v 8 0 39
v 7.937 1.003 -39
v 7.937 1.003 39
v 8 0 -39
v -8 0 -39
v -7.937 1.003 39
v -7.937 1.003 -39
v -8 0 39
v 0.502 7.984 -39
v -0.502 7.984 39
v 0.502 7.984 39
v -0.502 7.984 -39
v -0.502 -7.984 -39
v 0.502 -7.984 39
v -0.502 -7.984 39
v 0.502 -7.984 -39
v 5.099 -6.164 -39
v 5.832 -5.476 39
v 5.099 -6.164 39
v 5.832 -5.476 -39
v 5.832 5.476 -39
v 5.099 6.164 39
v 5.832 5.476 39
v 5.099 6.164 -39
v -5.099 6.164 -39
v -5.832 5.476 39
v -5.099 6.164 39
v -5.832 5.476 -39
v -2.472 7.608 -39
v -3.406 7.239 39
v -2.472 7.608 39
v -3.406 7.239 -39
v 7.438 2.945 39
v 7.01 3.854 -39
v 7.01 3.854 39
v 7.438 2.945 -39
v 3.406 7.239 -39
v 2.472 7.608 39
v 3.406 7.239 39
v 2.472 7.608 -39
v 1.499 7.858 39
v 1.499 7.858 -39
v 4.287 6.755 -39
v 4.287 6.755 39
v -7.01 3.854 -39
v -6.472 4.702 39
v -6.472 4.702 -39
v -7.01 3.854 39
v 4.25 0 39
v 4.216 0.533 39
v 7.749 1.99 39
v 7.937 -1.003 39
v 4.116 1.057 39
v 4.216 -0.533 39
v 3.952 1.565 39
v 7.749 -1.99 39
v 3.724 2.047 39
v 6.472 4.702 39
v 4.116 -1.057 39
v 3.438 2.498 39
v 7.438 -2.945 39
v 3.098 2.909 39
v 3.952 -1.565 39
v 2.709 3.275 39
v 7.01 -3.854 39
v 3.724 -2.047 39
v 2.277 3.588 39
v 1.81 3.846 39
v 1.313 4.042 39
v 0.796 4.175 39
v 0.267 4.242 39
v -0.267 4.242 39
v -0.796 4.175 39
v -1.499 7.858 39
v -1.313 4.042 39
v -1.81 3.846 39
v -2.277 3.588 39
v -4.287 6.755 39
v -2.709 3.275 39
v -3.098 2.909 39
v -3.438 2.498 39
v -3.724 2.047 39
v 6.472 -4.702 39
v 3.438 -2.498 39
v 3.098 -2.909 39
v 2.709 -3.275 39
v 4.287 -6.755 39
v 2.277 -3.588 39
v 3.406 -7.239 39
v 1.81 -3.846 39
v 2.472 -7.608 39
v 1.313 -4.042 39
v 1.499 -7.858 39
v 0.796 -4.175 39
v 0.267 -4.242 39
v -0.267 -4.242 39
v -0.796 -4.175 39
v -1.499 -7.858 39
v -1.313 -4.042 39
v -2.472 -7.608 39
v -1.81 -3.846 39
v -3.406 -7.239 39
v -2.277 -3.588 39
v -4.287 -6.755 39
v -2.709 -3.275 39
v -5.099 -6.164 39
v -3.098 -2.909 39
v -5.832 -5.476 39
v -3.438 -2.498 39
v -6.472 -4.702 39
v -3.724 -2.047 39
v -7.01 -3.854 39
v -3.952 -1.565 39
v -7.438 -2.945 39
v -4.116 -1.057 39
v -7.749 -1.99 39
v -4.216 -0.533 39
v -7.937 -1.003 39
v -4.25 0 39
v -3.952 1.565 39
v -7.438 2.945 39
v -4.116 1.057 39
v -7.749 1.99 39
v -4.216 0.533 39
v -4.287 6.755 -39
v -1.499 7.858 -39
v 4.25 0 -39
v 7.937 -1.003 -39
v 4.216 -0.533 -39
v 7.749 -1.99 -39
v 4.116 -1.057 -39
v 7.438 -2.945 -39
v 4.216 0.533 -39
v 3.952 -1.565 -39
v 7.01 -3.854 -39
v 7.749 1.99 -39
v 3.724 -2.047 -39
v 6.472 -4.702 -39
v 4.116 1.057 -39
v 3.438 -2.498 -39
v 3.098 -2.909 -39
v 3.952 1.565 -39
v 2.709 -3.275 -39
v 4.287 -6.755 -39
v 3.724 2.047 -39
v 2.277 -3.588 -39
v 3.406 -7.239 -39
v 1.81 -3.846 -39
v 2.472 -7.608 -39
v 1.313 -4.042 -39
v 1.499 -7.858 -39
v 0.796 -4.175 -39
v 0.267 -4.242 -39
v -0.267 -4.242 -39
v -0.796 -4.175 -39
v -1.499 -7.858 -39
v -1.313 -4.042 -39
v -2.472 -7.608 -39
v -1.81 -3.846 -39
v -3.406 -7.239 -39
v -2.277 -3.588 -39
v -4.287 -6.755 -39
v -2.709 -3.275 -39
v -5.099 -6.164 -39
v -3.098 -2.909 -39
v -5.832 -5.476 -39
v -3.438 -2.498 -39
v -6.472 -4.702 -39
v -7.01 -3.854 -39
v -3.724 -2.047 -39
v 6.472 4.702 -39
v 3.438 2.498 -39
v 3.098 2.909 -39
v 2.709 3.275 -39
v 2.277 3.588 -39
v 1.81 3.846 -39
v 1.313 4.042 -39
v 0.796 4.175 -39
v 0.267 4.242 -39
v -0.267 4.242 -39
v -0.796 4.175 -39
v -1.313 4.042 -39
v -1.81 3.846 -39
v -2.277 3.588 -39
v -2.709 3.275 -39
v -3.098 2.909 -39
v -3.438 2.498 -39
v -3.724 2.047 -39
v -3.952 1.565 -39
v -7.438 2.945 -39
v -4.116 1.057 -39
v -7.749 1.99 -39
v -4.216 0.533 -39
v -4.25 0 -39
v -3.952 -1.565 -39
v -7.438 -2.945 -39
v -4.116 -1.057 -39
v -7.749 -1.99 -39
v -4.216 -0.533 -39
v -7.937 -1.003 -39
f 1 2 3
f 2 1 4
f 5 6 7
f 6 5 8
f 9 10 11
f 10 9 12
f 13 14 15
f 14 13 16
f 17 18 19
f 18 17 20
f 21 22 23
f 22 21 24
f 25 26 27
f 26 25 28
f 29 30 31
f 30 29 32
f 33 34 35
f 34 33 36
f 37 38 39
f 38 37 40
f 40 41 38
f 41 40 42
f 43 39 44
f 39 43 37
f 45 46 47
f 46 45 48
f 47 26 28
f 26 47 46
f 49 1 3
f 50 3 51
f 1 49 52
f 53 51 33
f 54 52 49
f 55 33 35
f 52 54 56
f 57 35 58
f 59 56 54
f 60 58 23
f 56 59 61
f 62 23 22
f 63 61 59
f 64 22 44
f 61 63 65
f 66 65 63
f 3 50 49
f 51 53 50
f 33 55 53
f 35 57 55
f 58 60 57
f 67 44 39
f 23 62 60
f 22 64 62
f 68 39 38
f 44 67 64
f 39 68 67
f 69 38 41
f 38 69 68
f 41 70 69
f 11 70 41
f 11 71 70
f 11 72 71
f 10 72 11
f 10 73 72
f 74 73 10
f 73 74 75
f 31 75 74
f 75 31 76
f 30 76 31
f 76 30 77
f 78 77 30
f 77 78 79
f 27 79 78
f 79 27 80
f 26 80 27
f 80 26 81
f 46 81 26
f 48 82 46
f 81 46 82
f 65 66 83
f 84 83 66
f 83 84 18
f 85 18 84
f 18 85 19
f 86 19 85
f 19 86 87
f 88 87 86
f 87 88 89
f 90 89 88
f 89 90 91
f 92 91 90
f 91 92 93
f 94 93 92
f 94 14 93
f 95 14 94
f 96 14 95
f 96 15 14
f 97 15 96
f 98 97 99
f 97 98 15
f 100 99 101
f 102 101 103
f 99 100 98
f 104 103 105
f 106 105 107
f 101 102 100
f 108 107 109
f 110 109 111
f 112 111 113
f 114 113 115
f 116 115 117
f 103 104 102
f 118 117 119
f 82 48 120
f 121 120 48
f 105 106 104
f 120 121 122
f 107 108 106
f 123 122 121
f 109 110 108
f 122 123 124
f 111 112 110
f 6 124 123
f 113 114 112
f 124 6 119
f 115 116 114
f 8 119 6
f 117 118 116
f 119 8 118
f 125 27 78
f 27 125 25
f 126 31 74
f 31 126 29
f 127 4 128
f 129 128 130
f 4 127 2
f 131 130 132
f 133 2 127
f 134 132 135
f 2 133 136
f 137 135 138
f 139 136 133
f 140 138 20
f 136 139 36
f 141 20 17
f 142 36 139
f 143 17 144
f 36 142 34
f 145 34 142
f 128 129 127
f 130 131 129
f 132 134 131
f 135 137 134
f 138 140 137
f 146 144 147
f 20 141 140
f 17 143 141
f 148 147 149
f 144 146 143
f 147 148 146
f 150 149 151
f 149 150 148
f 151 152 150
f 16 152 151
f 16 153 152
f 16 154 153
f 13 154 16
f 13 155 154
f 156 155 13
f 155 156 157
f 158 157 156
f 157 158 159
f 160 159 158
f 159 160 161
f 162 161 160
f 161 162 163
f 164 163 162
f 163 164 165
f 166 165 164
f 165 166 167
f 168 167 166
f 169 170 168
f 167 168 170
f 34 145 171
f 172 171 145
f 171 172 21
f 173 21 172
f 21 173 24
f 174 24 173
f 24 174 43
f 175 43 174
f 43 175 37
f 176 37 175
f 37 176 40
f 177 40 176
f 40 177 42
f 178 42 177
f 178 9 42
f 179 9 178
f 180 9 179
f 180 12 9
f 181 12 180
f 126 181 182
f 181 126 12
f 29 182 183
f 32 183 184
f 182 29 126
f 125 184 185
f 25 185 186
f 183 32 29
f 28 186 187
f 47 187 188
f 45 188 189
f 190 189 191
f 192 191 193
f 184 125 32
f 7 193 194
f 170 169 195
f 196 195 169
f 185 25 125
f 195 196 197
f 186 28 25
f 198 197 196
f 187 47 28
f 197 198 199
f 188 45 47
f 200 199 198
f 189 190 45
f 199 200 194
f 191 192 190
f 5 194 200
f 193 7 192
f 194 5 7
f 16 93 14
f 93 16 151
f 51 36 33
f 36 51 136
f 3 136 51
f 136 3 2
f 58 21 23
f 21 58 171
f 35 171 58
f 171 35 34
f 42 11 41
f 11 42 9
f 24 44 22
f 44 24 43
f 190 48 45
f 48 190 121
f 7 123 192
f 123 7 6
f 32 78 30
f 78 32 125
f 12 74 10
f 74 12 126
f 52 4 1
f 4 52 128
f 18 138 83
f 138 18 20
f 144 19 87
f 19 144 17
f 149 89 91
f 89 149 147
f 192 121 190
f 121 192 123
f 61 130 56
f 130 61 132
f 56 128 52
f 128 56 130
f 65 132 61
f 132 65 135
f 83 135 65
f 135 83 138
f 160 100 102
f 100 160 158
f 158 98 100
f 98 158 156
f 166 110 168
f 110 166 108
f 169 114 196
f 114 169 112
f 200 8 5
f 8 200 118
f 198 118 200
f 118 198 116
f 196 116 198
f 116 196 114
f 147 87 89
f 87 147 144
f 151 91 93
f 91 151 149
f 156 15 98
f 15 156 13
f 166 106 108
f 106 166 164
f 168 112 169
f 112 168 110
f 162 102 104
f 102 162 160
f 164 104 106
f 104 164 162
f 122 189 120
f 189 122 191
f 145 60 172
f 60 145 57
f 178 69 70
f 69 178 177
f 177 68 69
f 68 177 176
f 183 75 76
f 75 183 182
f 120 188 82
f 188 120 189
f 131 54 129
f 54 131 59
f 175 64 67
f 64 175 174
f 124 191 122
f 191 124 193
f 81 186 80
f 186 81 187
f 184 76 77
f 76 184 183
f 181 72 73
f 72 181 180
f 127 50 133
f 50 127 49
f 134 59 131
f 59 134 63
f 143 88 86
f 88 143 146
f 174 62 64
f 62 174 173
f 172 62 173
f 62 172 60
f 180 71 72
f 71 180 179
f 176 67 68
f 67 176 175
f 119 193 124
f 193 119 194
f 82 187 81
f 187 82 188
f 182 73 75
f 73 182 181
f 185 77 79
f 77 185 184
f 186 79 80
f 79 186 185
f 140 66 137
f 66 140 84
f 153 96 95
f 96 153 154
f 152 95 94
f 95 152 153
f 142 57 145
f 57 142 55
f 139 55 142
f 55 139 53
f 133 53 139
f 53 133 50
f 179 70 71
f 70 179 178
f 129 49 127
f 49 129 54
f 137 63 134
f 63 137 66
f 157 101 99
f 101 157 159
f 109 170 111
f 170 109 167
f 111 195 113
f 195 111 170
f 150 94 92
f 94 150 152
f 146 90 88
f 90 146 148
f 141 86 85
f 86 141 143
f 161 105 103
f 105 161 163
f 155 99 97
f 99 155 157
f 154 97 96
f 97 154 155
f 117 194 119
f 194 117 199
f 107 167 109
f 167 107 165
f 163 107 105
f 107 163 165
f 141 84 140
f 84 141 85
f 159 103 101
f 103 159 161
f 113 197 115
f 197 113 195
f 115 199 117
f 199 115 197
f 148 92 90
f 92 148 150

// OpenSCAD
$fn = 50;


difference() {
	union() {
		translate(v = [0, 0, -39.0000000000]) {
			cylinder(h = 78, r = 8.0000000000);
		}
	}
	union() {
		translate(v = [0, 0, -100.0000000000]) {
			cylinder(h = 200, r = 4.2500000000);
		}
	}
}
